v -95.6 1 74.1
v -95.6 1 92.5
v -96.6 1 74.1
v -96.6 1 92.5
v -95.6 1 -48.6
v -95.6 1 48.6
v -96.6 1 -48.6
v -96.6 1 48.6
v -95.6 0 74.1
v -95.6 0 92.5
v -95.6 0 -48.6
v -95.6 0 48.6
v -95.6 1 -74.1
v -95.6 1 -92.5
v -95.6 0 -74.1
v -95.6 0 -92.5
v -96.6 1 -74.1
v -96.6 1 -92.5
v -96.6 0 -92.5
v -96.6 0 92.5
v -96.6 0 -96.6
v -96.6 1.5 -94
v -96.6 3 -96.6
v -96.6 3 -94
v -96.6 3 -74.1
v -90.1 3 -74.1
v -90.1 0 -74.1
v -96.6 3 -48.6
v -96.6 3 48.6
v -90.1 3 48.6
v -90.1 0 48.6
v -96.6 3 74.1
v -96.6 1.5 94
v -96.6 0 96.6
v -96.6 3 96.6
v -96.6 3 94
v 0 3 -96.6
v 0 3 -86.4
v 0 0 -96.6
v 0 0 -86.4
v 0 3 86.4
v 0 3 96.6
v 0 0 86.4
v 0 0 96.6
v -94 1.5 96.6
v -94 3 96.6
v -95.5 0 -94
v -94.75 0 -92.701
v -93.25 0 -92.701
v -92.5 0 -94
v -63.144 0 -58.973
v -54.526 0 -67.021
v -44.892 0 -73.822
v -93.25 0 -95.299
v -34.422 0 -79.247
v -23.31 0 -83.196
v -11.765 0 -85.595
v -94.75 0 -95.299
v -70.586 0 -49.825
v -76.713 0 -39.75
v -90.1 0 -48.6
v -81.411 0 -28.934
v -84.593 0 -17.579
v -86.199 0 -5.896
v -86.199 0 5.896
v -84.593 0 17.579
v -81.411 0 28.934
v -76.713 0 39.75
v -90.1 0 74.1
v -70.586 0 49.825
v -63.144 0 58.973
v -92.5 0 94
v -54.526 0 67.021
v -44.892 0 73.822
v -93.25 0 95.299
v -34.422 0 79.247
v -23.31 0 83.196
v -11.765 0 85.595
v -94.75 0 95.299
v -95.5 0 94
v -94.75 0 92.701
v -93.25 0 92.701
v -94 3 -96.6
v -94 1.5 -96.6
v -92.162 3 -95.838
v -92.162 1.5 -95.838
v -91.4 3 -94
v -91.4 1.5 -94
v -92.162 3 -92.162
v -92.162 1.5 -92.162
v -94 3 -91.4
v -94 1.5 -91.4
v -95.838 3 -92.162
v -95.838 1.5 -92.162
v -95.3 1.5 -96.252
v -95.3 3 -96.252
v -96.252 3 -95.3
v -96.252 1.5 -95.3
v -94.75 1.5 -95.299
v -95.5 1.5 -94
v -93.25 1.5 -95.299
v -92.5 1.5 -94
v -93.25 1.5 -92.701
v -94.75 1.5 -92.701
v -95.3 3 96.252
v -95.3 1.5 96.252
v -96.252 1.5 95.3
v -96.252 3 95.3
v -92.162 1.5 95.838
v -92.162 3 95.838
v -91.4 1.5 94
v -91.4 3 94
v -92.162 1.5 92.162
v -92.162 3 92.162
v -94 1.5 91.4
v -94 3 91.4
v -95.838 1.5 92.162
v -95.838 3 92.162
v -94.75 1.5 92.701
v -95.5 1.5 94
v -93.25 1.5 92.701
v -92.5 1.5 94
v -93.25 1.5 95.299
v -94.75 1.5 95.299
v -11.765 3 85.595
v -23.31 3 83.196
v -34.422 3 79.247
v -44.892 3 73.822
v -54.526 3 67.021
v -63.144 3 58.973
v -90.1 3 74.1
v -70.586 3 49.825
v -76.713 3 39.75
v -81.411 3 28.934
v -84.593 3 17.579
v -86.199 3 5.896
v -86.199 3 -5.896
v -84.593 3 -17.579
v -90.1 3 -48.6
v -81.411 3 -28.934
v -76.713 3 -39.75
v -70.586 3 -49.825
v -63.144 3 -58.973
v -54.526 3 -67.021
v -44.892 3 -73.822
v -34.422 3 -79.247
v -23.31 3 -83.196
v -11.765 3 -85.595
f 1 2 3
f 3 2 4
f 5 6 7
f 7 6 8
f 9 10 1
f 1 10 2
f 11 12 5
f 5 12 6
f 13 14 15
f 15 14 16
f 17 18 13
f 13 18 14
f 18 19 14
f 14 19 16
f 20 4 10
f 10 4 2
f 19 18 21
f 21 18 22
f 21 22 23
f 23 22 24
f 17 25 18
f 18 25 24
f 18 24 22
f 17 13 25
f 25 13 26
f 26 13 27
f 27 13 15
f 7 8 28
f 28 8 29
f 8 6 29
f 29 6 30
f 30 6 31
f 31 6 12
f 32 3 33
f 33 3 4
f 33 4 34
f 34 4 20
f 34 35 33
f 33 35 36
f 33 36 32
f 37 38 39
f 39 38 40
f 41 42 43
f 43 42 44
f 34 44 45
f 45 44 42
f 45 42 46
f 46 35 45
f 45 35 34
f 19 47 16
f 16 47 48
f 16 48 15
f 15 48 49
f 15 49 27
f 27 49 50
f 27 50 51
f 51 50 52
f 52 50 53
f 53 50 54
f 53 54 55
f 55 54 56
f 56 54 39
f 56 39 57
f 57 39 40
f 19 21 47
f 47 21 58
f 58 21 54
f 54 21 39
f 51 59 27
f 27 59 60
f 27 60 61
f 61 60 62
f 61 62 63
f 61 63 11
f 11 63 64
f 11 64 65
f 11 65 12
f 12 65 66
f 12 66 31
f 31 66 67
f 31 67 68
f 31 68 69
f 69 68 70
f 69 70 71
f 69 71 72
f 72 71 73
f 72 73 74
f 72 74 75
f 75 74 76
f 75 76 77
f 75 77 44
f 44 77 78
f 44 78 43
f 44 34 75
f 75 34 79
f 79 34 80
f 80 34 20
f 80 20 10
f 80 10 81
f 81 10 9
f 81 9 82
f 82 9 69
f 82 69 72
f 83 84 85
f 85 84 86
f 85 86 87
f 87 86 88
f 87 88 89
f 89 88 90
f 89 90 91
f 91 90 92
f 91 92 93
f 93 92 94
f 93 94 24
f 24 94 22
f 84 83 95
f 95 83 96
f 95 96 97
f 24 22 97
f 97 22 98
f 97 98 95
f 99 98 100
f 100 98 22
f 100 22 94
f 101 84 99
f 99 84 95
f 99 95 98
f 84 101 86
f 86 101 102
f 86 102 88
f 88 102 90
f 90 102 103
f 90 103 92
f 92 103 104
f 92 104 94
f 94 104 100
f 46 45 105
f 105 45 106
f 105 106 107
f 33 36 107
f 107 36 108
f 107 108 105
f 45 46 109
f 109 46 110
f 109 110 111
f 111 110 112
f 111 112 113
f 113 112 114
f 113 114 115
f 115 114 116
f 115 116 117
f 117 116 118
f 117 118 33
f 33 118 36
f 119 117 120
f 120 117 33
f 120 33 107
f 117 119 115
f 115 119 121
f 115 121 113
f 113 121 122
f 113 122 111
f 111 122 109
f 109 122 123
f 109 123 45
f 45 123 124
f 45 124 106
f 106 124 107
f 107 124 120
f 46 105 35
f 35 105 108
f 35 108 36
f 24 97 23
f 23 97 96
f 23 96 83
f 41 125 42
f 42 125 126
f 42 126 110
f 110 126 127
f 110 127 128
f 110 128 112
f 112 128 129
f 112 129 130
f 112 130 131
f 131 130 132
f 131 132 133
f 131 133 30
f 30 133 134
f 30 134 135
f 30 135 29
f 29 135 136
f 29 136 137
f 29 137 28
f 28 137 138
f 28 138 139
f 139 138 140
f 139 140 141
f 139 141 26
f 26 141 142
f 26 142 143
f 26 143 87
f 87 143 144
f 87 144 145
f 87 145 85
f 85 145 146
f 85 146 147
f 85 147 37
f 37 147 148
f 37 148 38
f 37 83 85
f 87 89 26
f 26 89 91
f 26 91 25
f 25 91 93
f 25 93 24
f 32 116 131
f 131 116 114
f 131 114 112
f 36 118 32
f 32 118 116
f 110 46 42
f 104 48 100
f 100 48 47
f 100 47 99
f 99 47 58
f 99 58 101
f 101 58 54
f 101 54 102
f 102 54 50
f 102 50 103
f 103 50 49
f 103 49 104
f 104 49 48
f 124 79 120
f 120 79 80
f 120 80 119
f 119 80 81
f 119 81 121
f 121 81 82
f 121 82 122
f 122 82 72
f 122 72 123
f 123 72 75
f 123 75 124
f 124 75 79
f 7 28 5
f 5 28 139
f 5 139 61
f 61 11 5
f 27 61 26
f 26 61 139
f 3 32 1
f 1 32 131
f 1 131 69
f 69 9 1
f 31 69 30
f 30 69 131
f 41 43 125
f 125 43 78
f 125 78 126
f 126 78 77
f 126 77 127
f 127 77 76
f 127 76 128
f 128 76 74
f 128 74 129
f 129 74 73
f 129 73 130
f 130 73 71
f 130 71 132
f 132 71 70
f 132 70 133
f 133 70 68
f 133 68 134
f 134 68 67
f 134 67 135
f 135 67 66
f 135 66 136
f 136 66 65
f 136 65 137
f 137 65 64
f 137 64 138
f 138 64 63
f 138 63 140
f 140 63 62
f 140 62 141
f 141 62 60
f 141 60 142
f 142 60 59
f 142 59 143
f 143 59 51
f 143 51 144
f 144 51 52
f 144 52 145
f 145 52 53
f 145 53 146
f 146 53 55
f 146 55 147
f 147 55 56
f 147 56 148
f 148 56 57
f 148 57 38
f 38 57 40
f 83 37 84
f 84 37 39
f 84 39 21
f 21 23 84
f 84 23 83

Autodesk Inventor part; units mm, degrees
ref_plane "YZ Plane" through (0, 0, 0) normal (1, 0, 0) x (0, 1, 0)
ref_plane "XZ Plane" through (0, 0, 0) normal (0, 1, 0) x (-1, 0, 0)
ref_plane "XY Plane" through (0, 0, 0) normal (0, 0, 1) x (1, 0, 0)
sketch "Sketch1" plane through (0, 0, 0) normal (0, 1, 0) x (-1, 0, 0)
  line L0 (101.6, -101.6) -> (-101.6, -101.6)
  line L1 (-101.6, -101.6) -> (-101.6, 101.6)
  line L2 (-101.6, 101.6) -> (101.6, 101.6)
  line L3 (101.6, 101.6) -> (101.6, -101.6)
  line L4 (96.6, -96.6) -> (-96.6, -96.6)
  line L5 (-96.6, -96.6) -> (-96.6, 96.6)
  line L6 (-96.6, 96.6) -> (96.6, 96.6)
  line L7 (96.6, 96.6) -> (96.6, -96.6)
  line L8 (101.6, 101.6) -> (-40.4, 101.6)
  circle A0 centre (0, 0) radius 86.4
  circle A1 centre (0, 0) radius 109.3376
  line L9 (-40.4, 101.6) -> (-101.6, 40.4)
  line L10 (-45.4, 101.6) -> (-101.6, 45.4)
  line L11 (96.6, 96.6) -> (96.6, 101.6)
  line L12 (-45.4, 101.6) -> (-35.4, 101.6)
  line L13 (-35.4, 101.6) -> (-35.4, 96.6)
  line L14 (-35.4, 96.6) -> (-45.4, 96.6)
  line L15 (-45.4, 96.6) -> (-45.4, 101.6)
  circle A2 centre (0, 0) radius 111.3376
  point P0 (96.6, 51.2168)
  point P1 (101.6, 40.4)
  point P2 (101.6, -40.4)
  point P3 (96.6, -51.2168)
  point P4 (-96.6, 45.4)
  point P5 (-45.4, 96.6)
  dimension "d0" = 203.2
  dimension "d1" = 203.2
  dimension "d2" = 101.6
  dimension "d3" = 101.6
  dimension "d4" = 5
  dimension "d5" = 5
  dimension "d6" = 5
  dimension "d7" = 5
  dimension "d10" = 142
  dimension "d12" = 61.2
  dimension "d14" = 172.8
  dimension "d15" = 5
  dimension "d16" = 5
  dimension "d17" = 10
  dimension "d34" = 2
extrude "Extrusion1" add sketch "Sketch1" along normal blind 3 contours A2 L7 L4 | L4 A1 L7 A2 | L4 A1 L5 L9 L6 L7 | A2 L5 A1 L4 | L4 L5 A2 | A1 L6 A2 L7 | A2 L6 L7
sketch "Sketch5" plane through (0, 3, 0) normal (0, 1, 0) x (1, 0, 0)
  line L0 (-96.6, -96.6) -> (45.4, -96.6) projected
  circle A0 centre (0, 0) radius 86.4 projected
  line L1 (96.6, -45.4) -> (96.6, 96.6) projected
  line L2 (96.6, 0) -> (89.1, 0)
  line L3 (89.1, 0) -> (89.1, 10)
  line L4 (89.1, 10) -> (96.6, 10)
  line L5 (96.6, 10) -> (96.6, 0)
  line L6 (89.1, 0) -> (96.6, 0)
  line L7 (96.6, 0) -> (96.6, -10)
  line L8 (96.6, -10) -> (89.1, -10)
  line L9 (89.1, -10) -> (89.1, 0)
  line L10 (0, 0) -> (96.6, 0)
  point P0 (10, -96.6)
  dimension "d52" = 7.5
  dimension "d53" = 7.5
  dimension "d54" = 10
  dimension "d55" = 10
extrude "Extrusion4" add sketch "Sketch5" along normal blind 15 contours L3 L4 L1 L2 | L2 L1 L8 L9
sketch "Sketch7" plane through (89.1, 3, 10) normal (0, 0, 1) x (1, 0, 0)
  line L0 (2, 10) -> (5.5, 10)
  line L1 (5.5, 10) -> (5.5, 3)
  line L2 (5.5, 3) -> (2, 3)
  line L3 (2, 3) -> (2, 10)
  line L4 (7.5, 0) -> (7.5, 15)
  line L5 (0, 0) -> (0, 15)
  line L6 (0, 15) -> (7.5, 15)
  point P0 (-89.1, -3)
  dimension "d56" = 3.5
  dimension "d57" = 2
  dimension "d58" = 2
  dimension "d59" = 5
  dimension "d60" = 7
extrude "Extrusion6" cut sketch "Sketch7" against normal through all
fillet "Fillet7" radius 3.175 2 edges at (96.6, 18, 0) (89.1, 18, 0)
sketch "Sketch8" plane through (0, 3, 0) normal (0, 1, 0) x (1, 0, 0)
  arc A0 (-101.6, -98.425) -> (-98.425, -101.6) centre (-98.425, -98.425) ccw
  line L0 (44.0849, 101.6) -> (-98.425, 101.6)
  line L1 (-101.6, 98.425) -> (-101.6, -98.425)
  line L2 (-101.6, -46.1) -> (-101.6, -76.6)
  line L3 (-96.6, -96.6) -> (-96.6, 96.6)
  line L4 (-96.6, -46.1) -> (-96.6, -76.6)
  line L5 (-101.6, -76.6) -> (-96.6, -76.6)
  line L6 (-101.6, -46.1) -> (-96.6, -46.1)
  line L7 (-98.425, -101.6) -> (101.6, -101.6)
  line L8 (0, 0) -> (-101.6, 0)
  line L9 (-101.6, 46.1) -> (-101.6, 76.6)
  line L10 (-96.6, 46.1) -> (-96.6, 76.6)
  line L11 (-101.6, 76.6) -> (-96.6, 76.6)
  line L12 (-101.6, 46.1) -> (-96.6, 46.1)
  line L13 (-96.6, -76.6) -> (-90.1, -76.6)
  line L14 (-90.1, -76.6) -> (-90.1, -46.1)
  line L15 (-90.1, -46.1) -> (-96.6, -46.1)
  line L16 (-96.6, -46.1) -> (-96.6, -76.6)
  arc A1 (-98.425, 101.6) -> (-101.6, 98.425) centre (-98.425, 98.425) ccw
  line L17 (-101.6, 46.1) -> (-101.6, 76.6)
  line L18 (-96.6, 46.1) -> (-96.6, 76.6)
  line L19 (-101.6, 76.6) -> (-96.6, 76.6)
  line L20 (-101.6, 46.1) -> (-96.6, 46.1)
  line L21 (-96.6, 76.6) -> (-90.1, 76.6)
  line L22 (-90.1, 76.6) -> (-90.1, 46.1)
  line L23 (-90.1, 46.1) -> (-96.6, 46.1)
  line L24 (-96.6, 46.1) -> (-96.6, 76.6)
  line L25 (-96.6, -76.6) -> (-101.6, -76.6)
  line L26 (-101.6, -76.6) -> (-101.6, -74.1)
  line L27 (-101.6, -74.1) -> (-96.6, -74.1)
  line L28 (-96.6, -74.1) -> (-96.6, -76.6)
  line L29 (-96.6, -46.1) -> (-101.6, -46.1)
  line L30 (-101.6, -46.1) -> (-101.6, -48.6)
  line L31 (-101.6, -48.6) -> (-96.6, -48.6)
  line L32 (-96.6, -48.6) -> (-96.6, -46.1)
  line L33 (-96.6, -76.6) -> (-90.1, -76.6)
  line L34 (-90.1, -76.6) -> (-90.1, -74.1)
  line L35 (-90.1, -74.1) -> (-96.6, -74.1)
  line L36 (-96.6, -74.1) -> (-96.6, -76.6)
  line L37 (-96.6, -48.6) -> (-90.1, -48.6)
  line L38 (-90.1, -48.6) -> (-90.1, -46.1)
  line L39 (-90.1, -46.1) -> (-96.6, -46.1)
  line L40 (-96.6, -46.1) -> (-96.6, -48.6)
  line L41 (-96.6, 96.6) -> (-96.6, -96.6) projected
  line L42 (-90.1, 46.1) -> (-96.6, 46.1)
  line L43 (-96.6, 46.1) -> (-96.6, 48.6)
  line L44 (-96.6, 48.6) -> (-90.1, 48.6)
  line L45 (-90.1, 48.6) -> (-90.1, 46.1)
  line L46 (-90.1, 76.6) -> (-96.6, 76.6)
  line L47 (-96.6, 76.6) -> (-96.6, 74.1)
  line L48 (-96.6, 74.1) -> (-90.1, 74.1)
  line L49 (-90.1, 74.1) -> (-90.1, 76.6)
  point P0 (-98.425, 98.425)
  point P1 (46.1, 101.6)
  point P2 (46.1, 96.6)
  point P3 (76.6, 96.6)
  point P4 (76.6, 101.6)
  point P5 (-46.1, 96.6)
  dimension "d64" = 30.5
  dimension "d65" = 25
  dimension "d66" = 6.5
  dimension "d118" = 2.5
  dimension "d119" = 2.5
  dimension "d120" = 2.5
  dimension "d121" = 2.5
extrude "Extrusion7" cut sketch "Sketch8" against normal through all contours L48 L22 L44 L3 | L37 L14 L35 L3
sketch "Sketch11" plane through (0, 3, 0) normal (0, 1, 0) x (1, 0, 0)
  line L0 (-94, 94) -> (94, 94)
  line L1 (94, 94) -> (94, -94)
  line L2 (94, -94) -> (-94, -94)
  line L3 (-94, -94) -> (-94, 94)
  circle A0 centre (-94, 94) radius 1.5
  circle A1 centre (94, 94) radius 1.5
  circle A2 centre (-94, -94) radius 1.5
  circle A3 centre (94, -39.0849) radius 1.5
  point P0 (0, 0)
  point P1 (0, 0)
  dimension "d98" = 94
  dimension "d99" = 94
  dimension "d100" = 94
  dimension "d101" = 94
  dimension "d102" = 3
  dimension "d103" = 3
  dimension "d104" = 3
  dimension "d105" = 3
extrude "Extrusion8" cut sketch "Sketch11" against normal blind 10 contours L3 A0 L0 | L0 A0 L3 | A1 L1 L0 | L0 L1 A1 | A2 L2 L3 | L3 L2 A2 | A3 L1 | L1 A3
sketch "Sketch12" plane through (0, 3, 0) normal (0, 1, 0) x (1, 0, 0)
  line L0 (-94, 94) -> (94, 94)
  line L1 (94, 94) -> (94, -94)
  line L2 (94, -94) -> (-94, -94)
  line L3 (-94, -94) -> (-94, 94)
  circle A0 centre (-94, 94) radius 2.6
  circle A1 centre (94, 94) radius 2.6
  circle A2 centre (-94, -94) radius 2.6
  circle A3 centre (94, -39.0849) radius 2.6
  point P0 (0, 0)
  point P1 (0, 0)
  point P2 (0, 0)
  dimension "d108" = 94
  dimension "d109" = 94
  dimension "d110" = 94
  dimension "d111" = 94
  dimension "d112" = 5.2
  dimension "d113" = 5.2
  dimension "d114" = 5.2
  dimension "d115" = 5.2
extrude "Extrusion9" cut sketch "Sketch12" against normal blind 1.5 contours L3 A0 L0 | L0 A0 L3 | A1 L1 L0 | L0 L1 A1 | A2 L2 L3 | L3 L2 A2 | A3 L1 | L1 A3
sketch "Sketch13" plane through (0, 3, 0) normal (0, 1, 0) x (1, 0, 0)
  line L0 (94, 96.6) -> (-94, 96.6) projected
  line L1 (0, 96.6) -> (0, -96.6)
  line L2 (-96.6, -96.6) -> (45.4, -96.6) projected
  point P0 (0, 0)
ref_plane "Work Plane1" through (0, 3, -96.6) normal (-1, 0, 0) x (0, 0, 1)
sketch "Sketch14" plane through (0, 3, -96.6) normal (-1, 0, 0) x (0, 0, 1)
  line L0 (208.9015, 36.251) -> (-17.5186, 36.251)
  line L1 (-17.5186, 36.251) -> (-17.5186, -18.9911)
  line L2 (-17.5186, -18.9911) -> (208.9015, -18.9911)
  line L3 (208.9015, -18.9911) -> (208.9015, 36.251)
  point P0 (96.6, -3)
extrude "Extrusion10" cut sketch "Sketch14" against normal through all
sketch "Sketch15" plane through (-96.6, 0, -48.6) normal (-1, 0, 0) x (0, 0, 1)
  line L0 (-43.9, 0) -> (-46.9, 0) projected
  line L1 (141.1, 1.5) -> (141.1, 0) projected
  line L2 (-43.9, 0) -> (141.1, 0)
  line L3 (141.1, 0) -> (141.1, 1)
  line L4 (141.1, 1) -> (-43.9, 1)
  line L5 (-43.9, 1) -> (-43.9, 0)
  point P0 (48.6, 0)
  dimension "d125" = 1
extrude "Extrusion11" cut sketch "Sketch15" against normal blind 1
equation "\"d1\" = d0"
equation "\"d2\" = 0.5 * d0"
equation "\"d3\" = 0.5 * d0"
properties part number "Box_Walls_2"
